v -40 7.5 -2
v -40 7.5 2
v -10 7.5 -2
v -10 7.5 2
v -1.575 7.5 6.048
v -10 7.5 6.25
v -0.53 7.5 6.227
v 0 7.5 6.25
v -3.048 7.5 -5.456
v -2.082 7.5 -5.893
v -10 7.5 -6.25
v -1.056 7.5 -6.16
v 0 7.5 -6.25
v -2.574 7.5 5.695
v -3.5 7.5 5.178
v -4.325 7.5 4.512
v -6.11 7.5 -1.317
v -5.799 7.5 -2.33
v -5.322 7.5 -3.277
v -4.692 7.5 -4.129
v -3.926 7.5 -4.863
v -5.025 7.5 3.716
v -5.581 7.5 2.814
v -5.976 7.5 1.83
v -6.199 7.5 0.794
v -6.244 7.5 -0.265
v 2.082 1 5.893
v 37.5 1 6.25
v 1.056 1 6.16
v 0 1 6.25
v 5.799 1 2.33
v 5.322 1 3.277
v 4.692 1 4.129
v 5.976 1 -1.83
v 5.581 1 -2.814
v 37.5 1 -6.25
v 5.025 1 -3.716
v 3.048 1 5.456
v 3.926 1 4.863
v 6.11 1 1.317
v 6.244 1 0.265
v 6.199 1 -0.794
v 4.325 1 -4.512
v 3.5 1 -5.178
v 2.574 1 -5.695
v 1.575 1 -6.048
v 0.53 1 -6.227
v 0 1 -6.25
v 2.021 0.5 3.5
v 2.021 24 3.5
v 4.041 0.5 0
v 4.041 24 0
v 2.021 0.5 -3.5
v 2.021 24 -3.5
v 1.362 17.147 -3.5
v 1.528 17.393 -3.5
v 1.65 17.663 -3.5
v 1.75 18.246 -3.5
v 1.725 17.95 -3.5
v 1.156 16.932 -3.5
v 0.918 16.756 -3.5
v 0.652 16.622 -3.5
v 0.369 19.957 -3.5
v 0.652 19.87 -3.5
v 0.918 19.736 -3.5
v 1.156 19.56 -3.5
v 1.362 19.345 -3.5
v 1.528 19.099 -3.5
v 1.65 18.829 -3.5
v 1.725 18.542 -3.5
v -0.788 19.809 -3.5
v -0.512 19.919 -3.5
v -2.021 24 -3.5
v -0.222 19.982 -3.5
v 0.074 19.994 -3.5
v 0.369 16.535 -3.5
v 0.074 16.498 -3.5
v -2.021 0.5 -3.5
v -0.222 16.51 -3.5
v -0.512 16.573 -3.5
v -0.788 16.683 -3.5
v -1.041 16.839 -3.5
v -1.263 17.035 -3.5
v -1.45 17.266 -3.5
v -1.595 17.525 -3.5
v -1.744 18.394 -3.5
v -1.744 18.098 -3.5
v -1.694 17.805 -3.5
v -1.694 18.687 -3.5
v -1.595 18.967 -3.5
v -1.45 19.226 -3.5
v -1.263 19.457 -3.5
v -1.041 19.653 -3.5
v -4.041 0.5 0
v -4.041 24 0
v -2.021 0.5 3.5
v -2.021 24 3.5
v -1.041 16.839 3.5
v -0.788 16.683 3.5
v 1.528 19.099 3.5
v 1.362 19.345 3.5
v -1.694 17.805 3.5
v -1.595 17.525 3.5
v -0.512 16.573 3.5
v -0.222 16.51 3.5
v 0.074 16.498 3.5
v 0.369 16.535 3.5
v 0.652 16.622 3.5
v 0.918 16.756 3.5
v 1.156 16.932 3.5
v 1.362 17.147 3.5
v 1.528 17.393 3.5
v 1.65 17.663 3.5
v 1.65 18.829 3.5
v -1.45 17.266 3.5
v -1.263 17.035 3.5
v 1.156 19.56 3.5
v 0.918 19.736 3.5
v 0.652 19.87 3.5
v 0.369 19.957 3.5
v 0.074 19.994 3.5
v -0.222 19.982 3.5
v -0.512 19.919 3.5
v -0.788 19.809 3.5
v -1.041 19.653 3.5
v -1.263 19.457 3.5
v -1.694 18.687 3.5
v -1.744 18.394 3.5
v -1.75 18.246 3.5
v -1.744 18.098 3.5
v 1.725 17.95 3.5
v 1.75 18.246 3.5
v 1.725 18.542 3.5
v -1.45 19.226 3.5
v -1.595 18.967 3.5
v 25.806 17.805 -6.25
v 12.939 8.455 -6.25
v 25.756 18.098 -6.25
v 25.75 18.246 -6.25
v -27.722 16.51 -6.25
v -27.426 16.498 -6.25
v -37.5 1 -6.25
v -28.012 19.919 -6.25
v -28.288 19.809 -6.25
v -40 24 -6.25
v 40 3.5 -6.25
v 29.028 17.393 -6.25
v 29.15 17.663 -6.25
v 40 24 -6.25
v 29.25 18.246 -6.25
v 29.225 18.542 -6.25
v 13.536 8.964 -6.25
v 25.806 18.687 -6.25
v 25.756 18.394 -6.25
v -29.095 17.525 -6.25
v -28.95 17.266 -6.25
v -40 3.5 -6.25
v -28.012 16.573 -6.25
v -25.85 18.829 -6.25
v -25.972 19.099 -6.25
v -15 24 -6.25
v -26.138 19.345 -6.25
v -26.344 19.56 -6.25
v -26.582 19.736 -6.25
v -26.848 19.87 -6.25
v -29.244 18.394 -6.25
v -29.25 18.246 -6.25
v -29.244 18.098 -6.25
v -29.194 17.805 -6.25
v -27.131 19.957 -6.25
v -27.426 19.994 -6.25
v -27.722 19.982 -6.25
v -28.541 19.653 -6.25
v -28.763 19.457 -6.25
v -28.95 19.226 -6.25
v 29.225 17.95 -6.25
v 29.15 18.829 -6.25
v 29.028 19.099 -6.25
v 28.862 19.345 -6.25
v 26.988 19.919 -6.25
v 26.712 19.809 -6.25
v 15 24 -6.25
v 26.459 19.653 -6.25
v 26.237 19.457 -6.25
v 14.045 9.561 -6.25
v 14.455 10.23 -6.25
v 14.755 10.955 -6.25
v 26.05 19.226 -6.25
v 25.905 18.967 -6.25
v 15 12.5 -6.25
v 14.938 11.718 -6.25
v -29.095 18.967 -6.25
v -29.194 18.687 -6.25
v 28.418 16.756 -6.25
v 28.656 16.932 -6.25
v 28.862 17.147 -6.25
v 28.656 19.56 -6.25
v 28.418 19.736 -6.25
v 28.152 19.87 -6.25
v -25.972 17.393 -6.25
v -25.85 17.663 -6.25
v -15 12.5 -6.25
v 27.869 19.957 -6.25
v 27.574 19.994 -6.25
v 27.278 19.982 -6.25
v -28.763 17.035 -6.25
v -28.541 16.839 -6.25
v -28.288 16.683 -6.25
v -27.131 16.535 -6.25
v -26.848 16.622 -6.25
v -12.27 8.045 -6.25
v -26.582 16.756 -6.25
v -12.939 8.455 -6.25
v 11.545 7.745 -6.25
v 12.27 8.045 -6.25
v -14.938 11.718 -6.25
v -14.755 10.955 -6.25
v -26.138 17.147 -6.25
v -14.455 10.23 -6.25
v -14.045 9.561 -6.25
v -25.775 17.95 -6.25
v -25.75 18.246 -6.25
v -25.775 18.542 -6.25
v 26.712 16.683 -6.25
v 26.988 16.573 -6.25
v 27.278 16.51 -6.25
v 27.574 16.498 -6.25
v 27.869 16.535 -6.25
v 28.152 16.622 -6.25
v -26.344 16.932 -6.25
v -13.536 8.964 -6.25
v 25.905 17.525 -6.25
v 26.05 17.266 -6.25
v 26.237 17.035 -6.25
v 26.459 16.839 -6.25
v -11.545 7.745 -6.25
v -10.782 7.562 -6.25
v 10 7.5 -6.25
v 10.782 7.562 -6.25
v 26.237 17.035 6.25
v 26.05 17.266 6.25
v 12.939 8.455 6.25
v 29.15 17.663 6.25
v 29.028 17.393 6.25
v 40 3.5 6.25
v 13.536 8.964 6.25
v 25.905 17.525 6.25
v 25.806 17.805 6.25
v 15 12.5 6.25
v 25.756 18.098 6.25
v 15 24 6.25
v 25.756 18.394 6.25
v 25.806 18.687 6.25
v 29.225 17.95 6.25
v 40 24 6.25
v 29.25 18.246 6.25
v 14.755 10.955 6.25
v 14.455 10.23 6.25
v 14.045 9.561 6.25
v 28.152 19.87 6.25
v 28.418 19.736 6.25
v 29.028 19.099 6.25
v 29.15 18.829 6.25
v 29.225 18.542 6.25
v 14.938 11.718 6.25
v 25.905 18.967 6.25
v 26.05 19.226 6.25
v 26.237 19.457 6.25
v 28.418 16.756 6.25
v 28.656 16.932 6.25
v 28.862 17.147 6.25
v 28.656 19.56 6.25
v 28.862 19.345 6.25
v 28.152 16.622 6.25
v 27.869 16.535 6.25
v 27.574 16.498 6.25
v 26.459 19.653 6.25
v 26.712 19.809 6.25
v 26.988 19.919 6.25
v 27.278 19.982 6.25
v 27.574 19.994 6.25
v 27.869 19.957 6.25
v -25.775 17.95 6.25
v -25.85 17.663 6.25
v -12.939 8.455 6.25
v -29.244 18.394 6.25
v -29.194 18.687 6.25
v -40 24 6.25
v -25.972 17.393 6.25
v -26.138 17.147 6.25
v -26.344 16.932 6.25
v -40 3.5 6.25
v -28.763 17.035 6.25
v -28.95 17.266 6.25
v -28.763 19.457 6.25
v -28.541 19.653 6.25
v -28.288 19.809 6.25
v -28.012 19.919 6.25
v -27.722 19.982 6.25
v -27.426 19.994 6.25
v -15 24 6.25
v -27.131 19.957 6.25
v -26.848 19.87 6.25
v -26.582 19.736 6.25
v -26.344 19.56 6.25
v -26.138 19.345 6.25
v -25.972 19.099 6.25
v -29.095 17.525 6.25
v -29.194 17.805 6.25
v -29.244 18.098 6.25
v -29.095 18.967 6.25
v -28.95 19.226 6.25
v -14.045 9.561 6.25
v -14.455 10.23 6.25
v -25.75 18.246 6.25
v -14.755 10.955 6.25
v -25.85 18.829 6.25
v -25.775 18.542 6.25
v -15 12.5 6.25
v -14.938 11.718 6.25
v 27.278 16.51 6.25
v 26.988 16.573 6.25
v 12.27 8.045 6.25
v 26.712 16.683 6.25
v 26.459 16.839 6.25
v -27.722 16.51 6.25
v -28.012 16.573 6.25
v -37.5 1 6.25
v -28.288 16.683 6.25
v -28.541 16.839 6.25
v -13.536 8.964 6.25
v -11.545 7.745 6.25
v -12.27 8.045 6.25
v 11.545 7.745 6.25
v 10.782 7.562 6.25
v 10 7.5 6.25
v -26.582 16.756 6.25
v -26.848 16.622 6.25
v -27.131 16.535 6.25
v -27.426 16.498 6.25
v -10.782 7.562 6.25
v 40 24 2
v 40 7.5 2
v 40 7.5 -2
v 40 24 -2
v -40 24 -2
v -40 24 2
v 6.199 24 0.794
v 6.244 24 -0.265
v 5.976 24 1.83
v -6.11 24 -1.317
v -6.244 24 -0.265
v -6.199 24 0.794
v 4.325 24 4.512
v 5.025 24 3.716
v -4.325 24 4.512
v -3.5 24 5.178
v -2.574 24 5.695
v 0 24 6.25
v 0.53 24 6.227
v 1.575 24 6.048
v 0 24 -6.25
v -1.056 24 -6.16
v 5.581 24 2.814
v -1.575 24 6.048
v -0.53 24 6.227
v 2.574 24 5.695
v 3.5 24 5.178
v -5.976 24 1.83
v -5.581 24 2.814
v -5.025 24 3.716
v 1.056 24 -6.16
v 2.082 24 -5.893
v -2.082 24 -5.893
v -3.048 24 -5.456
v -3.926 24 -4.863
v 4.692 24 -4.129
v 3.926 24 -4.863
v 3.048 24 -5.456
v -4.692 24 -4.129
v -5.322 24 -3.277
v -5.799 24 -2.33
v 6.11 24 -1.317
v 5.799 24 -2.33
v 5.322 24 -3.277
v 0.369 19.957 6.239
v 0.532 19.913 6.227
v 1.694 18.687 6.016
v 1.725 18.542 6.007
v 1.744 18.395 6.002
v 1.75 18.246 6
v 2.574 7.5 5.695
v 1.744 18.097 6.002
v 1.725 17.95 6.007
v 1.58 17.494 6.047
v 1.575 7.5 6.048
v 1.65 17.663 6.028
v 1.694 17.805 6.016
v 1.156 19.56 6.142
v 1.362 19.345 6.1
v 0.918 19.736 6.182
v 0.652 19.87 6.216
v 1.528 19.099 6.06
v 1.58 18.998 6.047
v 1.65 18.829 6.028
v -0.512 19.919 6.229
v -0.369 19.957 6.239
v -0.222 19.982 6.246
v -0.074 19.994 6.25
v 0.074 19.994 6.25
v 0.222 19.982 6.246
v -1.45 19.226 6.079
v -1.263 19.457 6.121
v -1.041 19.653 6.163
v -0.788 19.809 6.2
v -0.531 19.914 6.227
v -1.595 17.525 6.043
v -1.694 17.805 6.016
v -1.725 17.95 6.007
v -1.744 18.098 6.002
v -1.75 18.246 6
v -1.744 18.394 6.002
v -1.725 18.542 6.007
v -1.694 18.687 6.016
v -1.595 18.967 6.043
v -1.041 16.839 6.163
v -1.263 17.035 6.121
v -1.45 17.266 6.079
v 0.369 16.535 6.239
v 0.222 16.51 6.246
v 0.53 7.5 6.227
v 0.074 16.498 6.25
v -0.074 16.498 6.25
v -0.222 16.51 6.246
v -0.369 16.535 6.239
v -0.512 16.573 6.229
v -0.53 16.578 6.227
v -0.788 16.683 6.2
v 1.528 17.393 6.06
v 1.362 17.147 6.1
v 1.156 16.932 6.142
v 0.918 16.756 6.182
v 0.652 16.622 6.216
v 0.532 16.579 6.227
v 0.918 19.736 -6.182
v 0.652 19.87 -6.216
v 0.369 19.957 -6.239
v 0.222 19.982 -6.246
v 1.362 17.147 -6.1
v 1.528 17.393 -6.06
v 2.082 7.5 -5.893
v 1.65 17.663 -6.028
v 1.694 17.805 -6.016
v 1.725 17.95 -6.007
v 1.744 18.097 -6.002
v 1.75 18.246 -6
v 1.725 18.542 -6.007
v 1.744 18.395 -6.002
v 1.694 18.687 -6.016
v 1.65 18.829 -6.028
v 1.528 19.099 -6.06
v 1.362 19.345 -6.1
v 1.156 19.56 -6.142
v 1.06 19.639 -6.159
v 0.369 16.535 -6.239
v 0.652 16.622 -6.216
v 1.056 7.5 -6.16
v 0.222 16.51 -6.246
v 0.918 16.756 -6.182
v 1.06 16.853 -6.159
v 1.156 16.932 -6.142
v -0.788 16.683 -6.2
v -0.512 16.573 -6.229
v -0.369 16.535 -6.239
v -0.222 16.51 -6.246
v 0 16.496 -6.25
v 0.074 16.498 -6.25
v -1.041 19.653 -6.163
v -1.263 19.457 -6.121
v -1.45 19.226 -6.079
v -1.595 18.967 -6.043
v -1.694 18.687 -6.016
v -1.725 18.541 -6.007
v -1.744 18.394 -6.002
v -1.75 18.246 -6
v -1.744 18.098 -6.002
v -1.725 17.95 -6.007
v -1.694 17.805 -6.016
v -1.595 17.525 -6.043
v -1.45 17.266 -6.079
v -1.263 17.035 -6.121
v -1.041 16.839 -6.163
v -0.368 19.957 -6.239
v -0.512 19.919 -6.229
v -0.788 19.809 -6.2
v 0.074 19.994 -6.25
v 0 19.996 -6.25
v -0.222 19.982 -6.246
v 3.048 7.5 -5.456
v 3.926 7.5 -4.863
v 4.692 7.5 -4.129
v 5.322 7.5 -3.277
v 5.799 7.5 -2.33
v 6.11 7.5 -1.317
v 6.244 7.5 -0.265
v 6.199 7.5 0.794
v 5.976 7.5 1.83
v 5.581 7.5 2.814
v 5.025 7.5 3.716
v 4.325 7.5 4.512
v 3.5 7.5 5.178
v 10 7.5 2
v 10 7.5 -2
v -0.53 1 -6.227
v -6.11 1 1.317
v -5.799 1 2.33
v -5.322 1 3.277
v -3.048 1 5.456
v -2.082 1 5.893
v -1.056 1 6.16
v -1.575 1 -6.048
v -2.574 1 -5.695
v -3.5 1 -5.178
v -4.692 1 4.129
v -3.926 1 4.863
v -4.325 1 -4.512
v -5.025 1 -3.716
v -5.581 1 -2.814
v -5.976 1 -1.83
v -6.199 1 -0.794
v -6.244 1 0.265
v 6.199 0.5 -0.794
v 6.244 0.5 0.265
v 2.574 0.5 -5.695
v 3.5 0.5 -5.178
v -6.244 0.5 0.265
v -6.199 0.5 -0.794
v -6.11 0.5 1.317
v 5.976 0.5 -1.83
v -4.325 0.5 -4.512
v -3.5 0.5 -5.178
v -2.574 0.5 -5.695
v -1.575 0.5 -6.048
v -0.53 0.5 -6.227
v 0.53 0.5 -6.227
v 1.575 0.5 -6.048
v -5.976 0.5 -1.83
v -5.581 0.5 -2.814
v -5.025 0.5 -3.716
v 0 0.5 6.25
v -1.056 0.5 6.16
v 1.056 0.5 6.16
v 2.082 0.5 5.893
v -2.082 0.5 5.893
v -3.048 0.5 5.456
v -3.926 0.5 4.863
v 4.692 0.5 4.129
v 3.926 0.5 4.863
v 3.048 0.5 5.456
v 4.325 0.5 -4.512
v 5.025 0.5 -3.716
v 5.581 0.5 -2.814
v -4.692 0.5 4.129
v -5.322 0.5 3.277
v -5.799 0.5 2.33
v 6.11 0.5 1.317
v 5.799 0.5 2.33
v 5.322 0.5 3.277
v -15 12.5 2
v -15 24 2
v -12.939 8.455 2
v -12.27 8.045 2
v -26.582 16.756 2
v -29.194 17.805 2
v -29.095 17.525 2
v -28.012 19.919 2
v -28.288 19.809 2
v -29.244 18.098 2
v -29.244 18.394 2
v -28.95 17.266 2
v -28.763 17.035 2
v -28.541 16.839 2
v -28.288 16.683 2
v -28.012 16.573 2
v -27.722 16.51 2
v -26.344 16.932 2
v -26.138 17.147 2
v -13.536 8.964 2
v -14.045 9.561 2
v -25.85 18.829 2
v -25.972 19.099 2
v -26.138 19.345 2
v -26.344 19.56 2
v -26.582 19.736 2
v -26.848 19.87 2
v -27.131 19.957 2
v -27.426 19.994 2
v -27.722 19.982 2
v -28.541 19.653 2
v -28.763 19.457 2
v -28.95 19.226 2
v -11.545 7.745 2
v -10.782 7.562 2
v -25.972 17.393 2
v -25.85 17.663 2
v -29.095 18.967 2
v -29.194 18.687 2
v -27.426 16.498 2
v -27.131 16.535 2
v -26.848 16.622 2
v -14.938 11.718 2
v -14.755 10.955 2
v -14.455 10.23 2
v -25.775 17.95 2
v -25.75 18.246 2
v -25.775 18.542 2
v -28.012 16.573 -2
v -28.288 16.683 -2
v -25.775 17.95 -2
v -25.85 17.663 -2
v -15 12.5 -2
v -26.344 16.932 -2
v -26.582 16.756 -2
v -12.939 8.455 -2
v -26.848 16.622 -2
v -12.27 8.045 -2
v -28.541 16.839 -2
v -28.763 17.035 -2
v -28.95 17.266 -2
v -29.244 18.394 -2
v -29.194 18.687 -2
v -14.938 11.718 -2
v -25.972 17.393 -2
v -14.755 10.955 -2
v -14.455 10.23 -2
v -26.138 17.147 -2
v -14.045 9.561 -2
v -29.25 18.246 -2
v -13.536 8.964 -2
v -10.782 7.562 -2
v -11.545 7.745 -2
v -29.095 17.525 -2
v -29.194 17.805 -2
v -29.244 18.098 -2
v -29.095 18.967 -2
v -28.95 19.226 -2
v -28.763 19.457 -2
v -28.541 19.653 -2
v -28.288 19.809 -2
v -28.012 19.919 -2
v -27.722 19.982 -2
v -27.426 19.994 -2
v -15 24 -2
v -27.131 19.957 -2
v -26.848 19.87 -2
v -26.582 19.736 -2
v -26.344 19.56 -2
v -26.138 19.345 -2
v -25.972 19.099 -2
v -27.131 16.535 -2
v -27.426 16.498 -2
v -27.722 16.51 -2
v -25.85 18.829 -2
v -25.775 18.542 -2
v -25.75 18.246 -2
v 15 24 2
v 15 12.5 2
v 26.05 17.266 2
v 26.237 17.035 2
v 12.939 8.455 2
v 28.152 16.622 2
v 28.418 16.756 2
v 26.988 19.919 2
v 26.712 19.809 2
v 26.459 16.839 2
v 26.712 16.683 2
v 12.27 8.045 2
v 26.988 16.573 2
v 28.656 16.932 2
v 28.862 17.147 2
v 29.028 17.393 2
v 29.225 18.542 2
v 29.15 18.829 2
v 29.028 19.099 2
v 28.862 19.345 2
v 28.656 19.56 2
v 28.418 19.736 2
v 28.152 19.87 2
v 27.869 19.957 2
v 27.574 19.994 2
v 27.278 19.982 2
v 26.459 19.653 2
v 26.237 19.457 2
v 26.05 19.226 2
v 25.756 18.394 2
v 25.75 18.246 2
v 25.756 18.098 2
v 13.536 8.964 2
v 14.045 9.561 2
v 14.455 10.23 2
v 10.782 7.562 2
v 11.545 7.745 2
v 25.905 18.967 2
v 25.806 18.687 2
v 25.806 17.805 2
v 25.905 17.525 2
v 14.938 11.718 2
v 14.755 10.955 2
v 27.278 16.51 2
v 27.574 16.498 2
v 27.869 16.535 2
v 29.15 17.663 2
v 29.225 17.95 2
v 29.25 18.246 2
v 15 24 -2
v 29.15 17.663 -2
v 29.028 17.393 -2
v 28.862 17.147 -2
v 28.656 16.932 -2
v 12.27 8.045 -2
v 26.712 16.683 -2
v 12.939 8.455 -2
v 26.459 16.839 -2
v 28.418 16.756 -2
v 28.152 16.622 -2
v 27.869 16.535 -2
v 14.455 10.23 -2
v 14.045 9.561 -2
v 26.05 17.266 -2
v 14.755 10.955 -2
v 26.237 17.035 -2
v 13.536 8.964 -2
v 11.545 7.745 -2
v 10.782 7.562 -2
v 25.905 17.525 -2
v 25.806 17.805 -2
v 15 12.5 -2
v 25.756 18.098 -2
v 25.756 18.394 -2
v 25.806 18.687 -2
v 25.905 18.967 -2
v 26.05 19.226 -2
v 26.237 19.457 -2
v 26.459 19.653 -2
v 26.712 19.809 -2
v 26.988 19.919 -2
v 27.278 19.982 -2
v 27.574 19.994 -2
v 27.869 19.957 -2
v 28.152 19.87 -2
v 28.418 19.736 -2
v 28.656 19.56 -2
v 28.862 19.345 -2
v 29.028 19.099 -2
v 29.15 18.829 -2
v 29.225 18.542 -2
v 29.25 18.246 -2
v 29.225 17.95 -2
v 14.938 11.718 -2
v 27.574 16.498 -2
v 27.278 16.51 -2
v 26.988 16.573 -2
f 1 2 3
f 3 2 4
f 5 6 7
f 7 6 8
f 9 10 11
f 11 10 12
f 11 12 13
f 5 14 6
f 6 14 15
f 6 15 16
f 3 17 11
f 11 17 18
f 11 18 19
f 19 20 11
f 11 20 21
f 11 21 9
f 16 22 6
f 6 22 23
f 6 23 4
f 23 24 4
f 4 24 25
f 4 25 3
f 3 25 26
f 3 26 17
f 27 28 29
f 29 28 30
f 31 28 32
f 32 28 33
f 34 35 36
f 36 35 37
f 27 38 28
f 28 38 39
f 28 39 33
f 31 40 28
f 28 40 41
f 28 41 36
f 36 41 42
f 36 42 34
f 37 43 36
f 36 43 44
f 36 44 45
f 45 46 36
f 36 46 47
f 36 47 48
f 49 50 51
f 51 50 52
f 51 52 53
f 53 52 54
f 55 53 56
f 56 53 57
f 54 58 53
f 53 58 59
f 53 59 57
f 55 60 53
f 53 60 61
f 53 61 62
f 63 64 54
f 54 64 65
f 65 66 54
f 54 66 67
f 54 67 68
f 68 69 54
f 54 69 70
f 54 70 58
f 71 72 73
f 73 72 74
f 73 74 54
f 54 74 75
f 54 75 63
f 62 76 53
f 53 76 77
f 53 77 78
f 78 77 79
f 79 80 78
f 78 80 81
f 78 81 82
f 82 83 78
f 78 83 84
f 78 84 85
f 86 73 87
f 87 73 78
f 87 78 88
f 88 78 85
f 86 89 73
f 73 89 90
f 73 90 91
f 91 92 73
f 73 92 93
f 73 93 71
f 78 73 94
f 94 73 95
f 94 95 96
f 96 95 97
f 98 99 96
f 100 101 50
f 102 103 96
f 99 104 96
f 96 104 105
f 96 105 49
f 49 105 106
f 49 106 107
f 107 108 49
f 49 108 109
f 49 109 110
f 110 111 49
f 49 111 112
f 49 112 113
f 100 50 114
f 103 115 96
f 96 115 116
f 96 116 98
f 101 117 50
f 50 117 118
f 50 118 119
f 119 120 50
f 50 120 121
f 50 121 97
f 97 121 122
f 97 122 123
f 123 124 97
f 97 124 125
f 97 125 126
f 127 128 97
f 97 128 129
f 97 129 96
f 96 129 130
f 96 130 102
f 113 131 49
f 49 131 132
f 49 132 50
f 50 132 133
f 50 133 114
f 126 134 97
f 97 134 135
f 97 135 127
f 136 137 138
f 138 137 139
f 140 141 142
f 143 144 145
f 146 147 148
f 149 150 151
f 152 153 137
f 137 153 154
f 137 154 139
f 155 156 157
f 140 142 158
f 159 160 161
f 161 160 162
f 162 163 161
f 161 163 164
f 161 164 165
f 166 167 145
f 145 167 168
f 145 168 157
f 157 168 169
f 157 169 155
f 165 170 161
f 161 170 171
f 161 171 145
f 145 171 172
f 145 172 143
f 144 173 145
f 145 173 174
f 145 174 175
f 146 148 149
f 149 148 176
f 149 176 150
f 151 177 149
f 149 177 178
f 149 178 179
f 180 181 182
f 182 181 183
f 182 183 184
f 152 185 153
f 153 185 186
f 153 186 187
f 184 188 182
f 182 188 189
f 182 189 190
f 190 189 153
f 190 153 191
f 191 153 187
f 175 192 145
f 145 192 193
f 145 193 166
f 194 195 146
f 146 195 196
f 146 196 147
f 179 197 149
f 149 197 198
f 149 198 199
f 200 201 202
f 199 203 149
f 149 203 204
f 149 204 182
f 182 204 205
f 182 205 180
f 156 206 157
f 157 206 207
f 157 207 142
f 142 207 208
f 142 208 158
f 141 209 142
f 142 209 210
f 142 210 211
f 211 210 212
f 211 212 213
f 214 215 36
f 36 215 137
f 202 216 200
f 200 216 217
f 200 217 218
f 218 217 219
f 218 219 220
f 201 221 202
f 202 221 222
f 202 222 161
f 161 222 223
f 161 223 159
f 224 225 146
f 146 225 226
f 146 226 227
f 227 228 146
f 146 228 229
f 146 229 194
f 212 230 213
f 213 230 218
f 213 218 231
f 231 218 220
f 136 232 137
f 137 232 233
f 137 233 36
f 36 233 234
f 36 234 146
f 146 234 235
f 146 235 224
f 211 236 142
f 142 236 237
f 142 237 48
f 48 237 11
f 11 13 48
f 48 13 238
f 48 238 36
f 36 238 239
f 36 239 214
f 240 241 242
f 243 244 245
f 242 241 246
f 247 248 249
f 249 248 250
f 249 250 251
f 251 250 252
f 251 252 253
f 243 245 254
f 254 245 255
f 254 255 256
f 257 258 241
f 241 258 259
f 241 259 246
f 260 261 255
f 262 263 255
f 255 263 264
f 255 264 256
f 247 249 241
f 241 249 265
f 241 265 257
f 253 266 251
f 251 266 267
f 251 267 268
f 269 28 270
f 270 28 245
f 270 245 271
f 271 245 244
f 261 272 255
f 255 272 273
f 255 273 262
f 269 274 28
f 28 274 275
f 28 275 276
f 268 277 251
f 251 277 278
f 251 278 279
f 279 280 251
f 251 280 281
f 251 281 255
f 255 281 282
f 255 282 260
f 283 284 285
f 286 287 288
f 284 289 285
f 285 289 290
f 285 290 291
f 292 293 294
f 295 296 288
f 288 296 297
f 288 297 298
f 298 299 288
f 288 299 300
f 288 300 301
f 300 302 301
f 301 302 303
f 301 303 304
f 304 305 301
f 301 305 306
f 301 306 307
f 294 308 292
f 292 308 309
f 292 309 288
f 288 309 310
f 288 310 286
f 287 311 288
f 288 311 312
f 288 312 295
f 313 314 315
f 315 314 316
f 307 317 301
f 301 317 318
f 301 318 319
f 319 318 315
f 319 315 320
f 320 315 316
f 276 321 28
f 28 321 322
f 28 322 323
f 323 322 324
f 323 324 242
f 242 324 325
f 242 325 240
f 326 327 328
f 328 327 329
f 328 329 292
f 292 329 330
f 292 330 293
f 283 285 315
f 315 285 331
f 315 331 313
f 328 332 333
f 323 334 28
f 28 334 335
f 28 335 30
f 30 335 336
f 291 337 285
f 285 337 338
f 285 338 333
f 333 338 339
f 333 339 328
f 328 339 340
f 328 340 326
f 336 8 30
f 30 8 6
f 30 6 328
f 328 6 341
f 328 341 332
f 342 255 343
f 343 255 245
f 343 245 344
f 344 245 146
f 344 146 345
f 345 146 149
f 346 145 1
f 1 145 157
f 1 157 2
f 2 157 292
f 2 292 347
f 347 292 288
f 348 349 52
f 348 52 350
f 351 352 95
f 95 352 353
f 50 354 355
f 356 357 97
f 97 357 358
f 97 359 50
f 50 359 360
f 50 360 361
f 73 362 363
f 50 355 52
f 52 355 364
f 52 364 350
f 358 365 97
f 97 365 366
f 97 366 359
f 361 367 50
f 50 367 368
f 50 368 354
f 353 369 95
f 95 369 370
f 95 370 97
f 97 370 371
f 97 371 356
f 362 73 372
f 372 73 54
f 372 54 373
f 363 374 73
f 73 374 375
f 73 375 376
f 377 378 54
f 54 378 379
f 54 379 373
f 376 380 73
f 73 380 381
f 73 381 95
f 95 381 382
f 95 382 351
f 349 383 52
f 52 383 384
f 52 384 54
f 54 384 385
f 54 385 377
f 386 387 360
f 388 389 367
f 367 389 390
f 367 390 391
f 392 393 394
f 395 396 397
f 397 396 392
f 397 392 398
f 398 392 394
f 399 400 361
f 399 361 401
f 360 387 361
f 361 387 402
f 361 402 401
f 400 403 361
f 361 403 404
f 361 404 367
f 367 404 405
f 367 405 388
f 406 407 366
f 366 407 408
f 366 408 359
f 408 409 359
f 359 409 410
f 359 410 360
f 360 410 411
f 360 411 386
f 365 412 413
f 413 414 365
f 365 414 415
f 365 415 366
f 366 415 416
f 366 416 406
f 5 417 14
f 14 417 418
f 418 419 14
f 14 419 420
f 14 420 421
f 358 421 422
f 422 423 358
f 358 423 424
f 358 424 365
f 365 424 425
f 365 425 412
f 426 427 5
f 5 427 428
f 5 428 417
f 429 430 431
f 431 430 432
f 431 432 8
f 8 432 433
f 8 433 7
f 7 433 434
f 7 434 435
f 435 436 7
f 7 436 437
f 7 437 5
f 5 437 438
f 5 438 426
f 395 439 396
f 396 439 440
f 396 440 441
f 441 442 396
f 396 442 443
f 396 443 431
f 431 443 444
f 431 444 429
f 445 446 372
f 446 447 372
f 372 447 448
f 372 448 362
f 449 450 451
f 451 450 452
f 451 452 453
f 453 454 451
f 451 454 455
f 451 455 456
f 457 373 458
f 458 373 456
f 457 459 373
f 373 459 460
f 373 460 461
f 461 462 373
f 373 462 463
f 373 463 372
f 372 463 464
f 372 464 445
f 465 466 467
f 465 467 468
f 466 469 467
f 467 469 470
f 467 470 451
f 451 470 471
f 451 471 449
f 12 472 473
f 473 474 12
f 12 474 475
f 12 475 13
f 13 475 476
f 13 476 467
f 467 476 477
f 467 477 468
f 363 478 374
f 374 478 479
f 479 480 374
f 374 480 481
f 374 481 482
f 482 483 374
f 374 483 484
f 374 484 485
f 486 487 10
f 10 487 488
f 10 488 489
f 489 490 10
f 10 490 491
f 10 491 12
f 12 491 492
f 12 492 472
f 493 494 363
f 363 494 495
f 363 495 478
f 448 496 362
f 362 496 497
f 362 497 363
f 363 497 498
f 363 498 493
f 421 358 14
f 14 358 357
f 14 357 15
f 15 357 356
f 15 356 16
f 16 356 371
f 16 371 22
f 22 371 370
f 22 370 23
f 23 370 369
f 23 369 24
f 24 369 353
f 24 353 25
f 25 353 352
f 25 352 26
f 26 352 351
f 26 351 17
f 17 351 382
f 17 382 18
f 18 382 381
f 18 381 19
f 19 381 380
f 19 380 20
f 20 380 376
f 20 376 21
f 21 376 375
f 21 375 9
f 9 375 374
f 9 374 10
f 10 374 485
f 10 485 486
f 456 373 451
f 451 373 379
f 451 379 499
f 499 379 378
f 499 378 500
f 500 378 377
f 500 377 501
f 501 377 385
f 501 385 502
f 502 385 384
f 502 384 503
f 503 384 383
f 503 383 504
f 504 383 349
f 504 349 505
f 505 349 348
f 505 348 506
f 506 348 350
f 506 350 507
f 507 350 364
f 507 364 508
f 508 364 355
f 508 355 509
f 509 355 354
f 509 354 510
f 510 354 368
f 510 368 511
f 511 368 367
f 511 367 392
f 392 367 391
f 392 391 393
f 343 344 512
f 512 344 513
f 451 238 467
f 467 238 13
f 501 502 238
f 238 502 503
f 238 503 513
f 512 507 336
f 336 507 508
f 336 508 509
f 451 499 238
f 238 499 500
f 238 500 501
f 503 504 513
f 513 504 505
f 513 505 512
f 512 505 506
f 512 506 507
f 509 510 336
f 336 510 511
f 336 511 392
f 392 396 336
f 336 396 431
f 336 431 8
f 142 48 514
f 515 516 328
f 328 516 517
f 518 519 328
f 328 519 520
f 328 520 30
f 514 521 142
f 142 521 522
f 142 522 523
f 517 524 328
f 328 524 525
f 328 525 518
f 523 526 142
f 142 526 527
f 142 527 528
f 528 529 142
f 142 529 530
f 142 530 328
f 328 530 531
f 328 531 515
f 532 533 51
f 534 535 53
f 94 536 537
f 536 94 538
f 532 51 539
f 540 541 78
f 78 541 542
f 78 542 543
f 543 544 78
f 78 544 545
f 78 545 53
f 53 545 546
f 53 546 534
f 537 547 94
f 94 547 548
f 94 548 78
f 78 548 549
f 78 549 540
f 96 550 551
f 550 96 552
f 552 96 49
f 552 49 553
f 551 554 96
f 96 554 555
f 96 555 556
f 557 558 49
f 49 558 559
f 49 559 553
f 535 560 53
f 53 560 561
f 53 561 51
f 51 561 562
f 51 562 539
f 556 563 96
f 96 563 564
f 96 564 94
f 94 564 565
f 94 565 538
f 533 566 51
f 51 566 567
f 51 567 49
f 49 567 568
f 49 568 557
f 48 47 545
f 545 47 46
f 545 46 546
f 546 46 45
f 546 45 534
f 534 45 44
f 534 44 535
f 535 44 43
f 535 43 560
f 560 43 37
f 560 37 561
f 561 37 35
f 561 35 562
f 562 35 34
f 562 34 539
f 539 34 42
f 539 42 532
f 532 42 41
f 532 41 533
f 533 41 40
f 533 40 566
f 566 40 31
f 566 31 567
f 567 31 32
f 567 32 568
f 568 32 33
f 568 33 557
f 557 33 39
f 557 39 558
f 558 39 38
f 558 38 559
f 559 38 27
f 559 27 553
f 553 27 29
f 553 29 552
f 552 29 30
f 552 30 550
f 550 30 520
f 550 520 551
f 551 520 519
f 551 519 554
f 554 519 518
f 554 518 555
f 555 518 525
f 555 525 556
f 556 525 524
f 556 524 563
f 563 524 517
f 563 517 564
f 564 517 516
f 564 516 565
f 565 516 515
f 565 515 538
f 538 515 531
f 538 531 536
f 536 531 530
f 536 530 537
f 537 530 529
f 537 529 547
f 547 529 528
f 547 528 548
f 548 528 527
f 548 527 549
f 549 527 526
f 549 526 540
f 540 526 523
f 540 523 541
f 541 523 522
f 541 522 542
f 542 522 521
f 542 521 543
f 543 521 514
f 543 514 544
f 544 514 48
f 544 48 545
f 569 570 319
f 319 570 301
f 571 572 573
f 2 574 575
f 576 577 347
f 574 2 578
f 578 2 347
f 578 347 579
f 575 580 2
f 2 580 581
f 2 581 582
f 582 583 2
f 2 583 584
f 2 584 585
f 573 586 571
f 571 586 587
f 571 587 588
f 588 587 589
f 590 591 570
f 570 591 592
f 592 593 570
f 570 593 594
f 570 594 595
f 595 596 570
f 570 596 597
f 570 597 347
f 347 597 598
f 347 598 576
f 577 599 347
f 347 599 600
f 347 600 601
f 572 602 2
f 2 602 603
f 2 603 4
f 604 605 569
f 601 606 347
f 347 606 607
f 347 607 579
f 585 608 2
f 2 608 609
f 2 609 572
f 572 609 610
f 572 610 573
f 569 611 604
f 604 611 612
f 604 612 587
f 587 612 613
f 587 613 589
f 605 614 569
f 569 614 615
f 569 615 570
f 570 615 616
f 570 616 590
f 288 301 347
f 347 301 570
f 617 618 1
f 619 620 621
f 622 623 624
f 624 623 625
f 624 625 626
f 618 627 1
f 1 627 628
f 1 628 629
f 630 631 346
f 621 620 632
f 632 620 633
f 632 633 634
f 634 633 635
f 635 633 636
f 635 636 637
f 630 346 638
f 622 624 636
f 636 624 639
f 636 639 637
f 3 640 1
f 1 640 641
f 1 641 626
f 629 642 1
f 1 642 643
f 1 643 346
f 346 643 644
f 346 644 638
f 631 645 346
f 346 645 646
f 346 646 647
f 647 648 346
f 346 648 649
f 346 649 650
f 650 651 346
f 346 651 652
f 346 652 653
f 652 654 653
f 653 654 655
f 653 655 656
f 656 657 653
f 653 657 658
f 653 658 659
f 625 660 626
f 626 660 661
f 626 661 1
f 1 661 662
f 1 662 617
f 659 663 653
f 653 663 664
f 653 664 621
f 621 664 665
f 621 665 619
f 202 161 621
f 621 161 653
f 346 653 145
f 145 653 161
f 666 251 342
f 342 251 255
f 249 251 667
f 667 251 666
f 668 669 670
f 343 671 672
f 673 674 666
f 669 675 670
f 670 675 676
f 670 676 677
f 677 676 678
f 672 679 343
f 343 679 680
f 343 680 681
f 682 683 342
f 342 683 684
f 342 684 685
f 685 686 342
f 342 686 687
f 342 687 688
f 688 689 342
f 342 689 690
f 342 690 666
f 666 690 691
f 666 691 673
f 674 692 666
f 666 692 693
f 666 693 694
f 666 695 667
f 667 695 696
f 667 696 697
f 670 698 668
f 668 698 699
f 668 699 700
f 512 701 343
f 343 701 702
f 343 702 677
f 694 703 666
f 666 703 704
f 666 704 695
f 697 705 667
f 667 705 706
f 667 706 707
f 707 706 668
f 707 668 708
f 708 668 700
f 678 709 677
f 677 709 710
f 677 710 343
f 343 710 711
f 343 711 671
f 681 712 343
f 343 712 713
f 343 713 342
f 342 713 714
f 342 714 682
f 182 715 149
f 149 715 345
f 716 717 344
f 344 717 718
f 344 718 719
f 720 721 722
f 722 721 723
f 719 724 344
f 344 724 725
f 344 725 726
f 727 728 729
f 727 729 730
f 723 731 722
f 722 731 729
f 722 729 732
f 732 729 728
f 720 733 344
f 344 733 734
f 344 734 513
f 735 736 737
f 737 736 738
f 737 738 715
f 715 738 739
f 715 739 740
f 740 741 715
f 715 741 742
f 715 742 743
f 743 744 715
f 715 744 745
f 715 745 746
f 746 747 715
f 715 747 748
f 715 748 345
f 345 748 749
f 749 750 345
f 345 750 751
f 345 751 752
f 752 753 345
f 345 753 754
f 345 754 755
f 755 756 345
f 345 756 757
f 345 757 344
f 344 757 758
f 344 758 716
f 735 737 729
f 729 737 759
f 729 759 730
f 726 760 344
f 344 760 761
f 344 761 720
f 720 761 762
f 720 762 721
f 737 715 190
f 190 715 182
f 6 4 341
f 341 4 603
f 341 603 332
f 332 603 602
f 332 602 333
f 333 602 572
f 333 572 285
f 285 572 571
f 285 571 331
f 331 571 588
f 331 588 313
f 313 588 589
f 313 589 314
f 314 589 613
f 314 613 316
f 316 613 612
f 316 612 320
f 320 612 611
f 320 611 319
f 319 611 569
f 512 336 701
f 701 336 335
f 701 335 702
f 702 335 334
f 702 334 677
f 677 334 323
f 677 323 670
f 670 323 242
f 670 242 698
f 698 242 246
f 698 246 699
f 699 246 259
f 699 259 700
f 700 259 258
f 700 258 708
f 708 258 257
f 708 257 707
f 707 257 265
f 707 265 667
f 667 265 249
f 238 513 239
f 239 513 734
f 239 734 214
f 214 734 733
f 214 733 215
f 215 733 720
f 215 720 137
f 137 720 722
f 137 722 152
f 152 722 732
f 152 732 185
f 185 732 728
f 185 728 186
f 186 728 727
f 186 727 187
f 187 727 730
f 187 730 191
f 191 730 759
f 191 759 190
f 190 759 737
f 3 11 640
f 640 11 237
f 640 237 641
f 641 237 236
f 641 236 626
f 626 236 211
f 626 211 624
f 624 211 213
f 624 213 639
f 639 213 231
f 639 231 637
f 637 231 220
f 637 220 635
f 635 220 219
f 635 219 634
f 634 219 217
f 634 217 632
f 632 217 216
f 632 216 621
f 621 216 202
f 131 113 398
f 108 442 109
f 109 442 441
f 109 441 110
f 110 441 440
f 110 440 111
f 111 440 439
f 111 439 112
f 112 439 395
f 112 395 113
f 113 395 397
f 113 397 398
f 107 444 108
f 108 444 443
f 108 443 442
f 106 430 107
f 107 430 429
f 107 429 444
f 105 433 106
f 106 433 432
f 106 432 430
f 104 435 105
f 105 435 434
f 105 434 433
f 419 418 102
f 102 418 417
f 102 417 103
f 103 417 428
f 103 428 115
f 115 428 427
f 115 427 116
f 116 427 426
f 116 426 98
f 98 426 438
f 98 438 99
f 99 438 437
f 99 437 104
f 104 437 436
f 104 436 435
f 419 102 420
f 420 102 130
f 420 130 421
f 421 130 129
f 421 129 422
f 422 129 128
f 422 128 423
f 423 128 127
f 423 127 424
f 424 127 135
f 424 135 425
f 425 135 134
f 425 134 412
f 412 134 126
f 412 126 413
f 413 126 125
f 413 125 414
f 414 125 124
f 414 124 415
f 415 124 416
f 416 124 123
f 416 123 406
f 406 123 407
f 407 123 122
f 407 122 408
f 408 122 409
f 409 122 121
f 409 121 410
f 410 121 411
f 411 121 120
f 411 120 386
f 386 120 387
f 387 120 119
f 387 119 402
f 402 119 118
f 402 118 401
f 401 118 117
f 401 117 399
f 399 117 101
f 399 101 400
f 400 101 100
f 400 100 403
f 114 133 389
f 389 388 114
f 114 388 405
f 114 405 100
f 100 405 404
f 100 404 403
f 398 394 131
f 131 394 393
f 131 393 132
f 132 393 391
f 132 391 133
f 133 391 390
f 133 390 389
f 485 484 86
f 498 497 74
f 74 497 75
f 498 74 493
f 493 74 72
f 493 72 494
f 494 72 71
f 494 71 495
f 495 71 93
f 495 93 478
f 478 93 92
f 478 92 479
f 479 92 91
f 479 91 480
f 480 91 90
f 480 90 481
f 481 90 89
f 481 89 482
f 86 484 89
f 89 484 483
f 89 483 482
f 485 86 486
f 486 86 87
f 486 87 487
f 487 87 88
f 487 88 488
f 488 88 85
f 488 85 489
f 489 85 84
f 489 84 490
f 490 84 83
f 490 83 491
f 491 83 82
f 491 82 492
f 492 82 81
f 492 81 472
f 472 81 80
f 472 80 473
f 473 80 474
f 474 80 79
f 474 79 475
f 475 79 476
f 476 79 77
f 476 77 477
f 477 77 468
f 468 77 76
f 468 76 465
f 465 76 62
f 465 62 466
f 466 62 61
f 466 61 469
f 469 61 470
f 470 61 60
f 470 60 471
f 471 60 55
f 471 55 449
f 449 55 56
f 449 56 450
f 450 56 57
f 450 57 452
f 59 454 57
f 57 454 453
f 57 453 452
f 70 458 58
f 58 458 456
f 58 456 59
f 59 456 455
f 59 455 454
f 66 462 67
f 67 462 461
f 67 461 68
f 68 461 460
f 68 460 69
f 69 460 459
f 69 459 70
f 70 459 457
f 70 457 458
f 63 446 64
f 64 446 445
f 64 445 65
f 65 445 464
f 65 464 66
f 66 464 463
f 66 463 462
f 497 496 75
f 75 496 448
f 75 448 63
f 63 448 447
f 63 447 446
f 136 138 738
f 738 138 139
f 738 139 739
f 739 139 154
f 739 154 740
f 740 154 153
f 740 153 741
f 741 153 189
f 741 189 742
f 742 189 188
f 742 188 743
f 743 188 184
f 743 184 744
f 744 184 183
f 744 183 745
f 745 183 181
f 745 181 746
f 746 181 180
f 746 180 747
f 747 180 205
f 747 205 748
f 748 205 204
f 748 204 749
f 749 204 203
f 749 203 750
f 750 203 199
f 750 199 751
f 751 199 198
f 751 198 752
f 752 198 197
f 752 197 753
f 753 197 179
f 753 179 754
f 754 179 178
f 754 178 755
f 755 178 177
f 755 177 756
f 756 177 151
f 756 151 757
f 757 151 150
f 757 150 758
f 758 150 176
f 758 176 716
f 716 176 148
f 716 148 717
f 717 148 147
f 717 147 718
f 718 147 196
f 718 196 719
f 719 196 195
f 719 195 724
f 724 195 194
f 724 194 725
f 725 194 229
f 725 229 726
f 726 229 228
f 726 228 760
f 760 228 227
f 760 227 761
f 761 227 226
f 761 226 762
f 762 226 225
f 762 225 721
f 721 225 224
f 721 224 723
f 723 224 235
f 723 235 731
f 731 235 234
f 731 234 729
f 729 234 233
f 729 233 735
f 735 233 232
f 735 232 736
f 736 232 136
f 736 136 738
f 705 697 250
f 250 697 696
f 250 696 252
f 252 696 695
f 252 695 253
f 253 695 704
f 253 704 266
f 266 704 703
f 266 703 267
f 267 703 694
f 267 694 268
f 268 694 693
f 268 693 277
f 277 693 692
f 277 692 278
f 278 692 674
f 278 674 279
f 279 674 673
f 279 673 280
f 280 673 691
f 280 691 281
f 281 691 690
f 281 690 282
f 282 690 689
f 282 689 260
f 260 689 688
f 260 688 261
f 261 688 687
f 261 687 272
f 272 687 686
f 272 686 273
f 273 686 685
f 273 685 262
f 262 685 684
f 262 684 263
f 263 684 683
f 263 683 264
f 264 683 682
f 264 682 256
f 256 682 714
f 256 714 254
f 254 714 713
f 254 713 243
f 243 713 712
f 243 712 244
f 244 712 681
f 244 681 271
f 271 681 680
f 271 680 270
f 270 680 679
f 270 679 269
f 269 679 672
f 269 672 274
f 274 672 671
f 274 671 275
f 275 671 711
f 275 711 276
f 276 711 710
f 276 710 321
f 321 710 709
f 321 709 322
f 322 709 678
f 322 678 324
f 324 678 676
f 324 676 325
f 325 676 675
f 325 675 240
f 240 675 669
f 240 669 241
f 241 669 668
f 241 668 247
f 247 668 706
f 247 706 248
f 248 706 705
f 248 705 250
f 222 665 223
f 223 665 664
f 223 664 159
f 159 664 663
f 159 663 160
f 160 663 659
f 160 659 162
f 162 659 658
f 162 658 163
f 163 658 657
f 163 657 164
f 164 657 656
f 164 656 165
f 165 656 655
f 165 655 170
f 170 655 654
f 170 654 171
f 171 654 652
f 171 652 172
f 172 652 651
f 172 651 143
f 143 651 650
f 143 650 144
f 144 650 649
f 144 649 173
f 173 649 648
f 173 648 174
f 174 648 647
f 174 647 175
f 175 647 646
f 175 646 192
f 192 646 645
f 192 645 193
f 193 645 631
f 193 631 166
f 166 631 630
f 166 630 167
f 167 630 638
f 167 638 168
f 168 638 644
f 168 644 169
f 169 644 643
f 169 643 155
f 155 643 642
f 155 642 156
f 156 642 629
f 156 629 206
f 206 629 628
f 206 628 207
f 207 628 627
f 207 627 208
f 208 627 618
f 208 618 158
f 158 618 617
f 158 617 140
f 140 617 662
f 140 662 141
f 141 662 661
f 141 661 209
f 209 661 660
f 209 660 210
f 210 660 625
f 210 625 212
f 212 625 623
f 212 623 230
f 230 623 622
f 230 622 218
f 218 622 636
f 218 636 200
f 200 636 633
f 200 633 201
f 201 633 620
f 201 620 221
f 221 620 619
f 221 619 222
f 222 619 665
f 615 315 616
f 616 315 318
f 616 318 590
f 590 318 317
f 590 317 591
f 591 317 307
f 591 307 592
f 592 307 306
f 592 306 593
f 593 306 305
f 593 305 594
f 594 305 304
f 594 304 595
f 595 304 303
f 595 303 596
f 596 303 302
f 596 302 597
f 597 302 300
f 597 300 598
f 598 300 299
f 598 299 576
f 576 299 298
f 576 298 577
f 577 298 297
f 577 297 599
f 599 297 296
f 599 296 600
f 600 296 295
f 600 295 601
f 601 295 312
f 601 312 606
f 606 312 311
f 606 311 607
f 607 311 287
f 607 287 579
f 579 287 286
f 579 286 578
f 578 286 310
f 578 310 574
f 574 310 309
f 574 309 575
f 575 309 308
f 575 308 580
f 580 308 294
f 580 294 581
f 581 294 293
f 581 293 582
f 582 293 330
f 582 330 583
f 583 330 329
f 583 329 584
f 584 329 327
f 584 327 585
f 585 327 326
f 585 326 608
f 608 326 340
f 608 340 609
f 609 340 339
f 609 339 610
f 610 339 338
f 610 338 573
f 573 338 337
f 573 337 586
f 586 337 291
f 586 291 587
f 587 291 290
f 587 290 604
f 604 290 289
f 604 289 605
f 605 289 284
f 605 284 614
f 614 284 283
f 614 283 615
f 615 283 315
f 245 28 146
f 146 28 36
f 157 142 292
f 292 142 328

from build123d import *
from build123d.topology import SkipClean

# Parameters (mm, degrees)
SKETCH1_R           = 6.25
BOSS_EXTRUDE1_DEPTH = 24
SKETCH2_R           = 1.75
CUT_EXTRUDE2_DEPTH  = 7.5
SKETCH3_W           = 80
SKETCH3_H           = 12.5
BOSS_EXTRUDE2_DEPTH = 7.5
CUT_EXTRUDE3_DEPTH  = 44.718560184
SKETCH5_W           = 80
SKETCH5_H           = 12.5
CUT_EXTRUDE4_DEPTH  = 1
BOSS_EXTRUDE3_START = -23.5
SKETCH6_R           = 6.25
BOSS_EXTRUDE3_DEPTH = 23.5
SKETCH7_W           = 25
SKETCH7_H           = 4.25
BOSS_EXTRUDE4_DEPTH = 16.5
FILLET1_R           = 5
SKETCH8_R           = 1.75
CUT_EXTRUDE5_DEPTH  = 7.5
LPATTERN1_COUNT     = 2
LPATTERN1_PITCH     = 27.5
LPATTERN1_COL_COUNT = 2
LPATTERN1_COL_PITCH = 27.5
CHAMFER1_SIZE       = 2.5


with BuildPart() as part:
    # Sketch1 → Boss-Extrude1 (new body)
    with BuildSketch(Plane(origin=(0, 0, 0), x_dir=(1, 0, 0), z_dir=(0, 1, 0))):
        with Locations(Location((0, 0, 0), (0, 0, 270))):
            Circle(SKETCH1_R)
        Polygon((4.041451884, 0), (2.020725942, 3.5), (-2.020725942, 3.5), (-4.041451884, 0), (-2.020725942, -3.5), (2.020725942, -3.5), align=None, mode=Mode.SUBTRACT)
    extrude(amount=BOSS_EXTRUDE1_DEPTH)

    # Sketch2 → Cut-Extrude2 (cut, symmetric)
    with BuildSketch(Plane.XY):
        with Locations((0, 17.746)):
            Circle(SKETCH2_R)
    extrude(amount=CUT_EXTRUDE2_DEPTH, both=True, mode=Mode.SUBTRACT)

    # Sketch3 → Boss-Extrude2 (add)
    with BuildSketch(Plane.XZ):
        Rectangle(SKETCH3_W, SKETCH3_H)
    extrude(amount=-BOSS_EXTRUDE2_DEPTH)

    # Sketch4 → Cut-Extrude3 (cut, through all)
    with BuildSketch(Plane(origin=(0, 7.5, 0), x_dir=(1, 0, 0), z_dir=(0, 1, 0))):
        Polygon((-2.020725942, -3.5), (2.020725942, -3.5), (4.041451884, 0), (2.020725942, 3.5), (-2.020725942, 3.5), (-4.041451884, 0), align=None)
    extrude(amount=-CUT_EXTRUDE3_DEPTH, mode=Mode.SUBTRACT)

    # Sketch5 → Cut-Extrude4 (cut)
    with BuildSketch(Plane.XZ):
        Rectangle(SKETCH5_W, SKETCH5_H)
    extrude(amount=-CUT_EXTRUDE4_DEPTH, mode=Mode.SUBTRACT)

    # Sketch6 → Boss-Extrude3 (add)
    with SkipClean():  # the faces are left unmerged after this step: merging them gives an invalid solid
        with BuildSketch(Plane(origin=(0, 24, 0), x_dir=(1, 0, 0), z_dir=(0, 1, 0)).offset(BOSS_EXTRUDE3_START)):
            with Locations(Location((0, 0, 0), (0, 0, 270))):
                Circle(SKETCH6_R)
            Polygon((-2.020725942, 3.5), (-4.041451884, 0), (-2.020725942, -3.5), (2.020725942, -3.5), (4.041451884, 0), (2.020725942, 3.5), align=None, mode=Mode.SUBTRACT)
        extrude(amount=BOSS_EXTRUDE3_DEPTH)
    add(part.part.scale(1), mode=Mode.REPLACE)  # the faces are merged on a copy

    # Sketch7 → Boss-Extrude4 (add)
    with BuildSketch(Plane(origin=(0, 7.5, 0), x_dir=(1, 0, 0), z_dir=(0, 1, 0))):
        with Locations((-27.5, 4.125)):
            Rectangle(SKETCH7_W, SKETCH7_H)
        with Locations((-27.5, -4.125)):
            Rectangle(SKETCH7_W, SKETCH7_H)
    boss_extrude4 = extrude(amount=BOSS_EXTRUDE4_DEPTH)

    # Mirror1: Boss-Extrude4 across plane
    add(boss_extrude4.mirror(Plane(origin=(0, 0, 0), x_dir=(0, 0, 1), z_dir=(1, 0, 0))))

    # Fillet1
    fillet1_edges = [part.edges().sort_by_distance(p)[0] for p in [
        (-15, 7.5, -4.125),
        (-15, 7.5, 4.125),
        (15, 7.5, -4.125),
        (15, 7.5, 4.125),
    ]]
    fillet(fillet1_edges, radius=FILLET1_R)

    # Sketch8 → Cut-Extrude5 (cut, symmetric)
    with BuildSketch(Plane.XY):
        with Locations((0, 18.246)):
            Circle(SKETCH8_R)
    cut_extrude5 = extrude(amount=CUT_EXTRUDE5_DEPTH, both=True, mode=Mode.SUBTRACT)

    # LPattern1: Cut-Extrude5 ×2
    with Locations(*[(i * LPATTERN1_PITCH, 0, 0) for i in range(1, LPATTERN1_COUNT)]):
        add(cut_extrude5, mode=Mode.SUBTRACT)

    # LPattern1 col: Cut-Extrude5 ×2
    with Locations(*[(-i * LPATTERN1_COL_PITCH, 0, 0) for i in range(1, LPATTERN1_COL_COUNT)]):
        add(cut_extrude5, mode=Mode.SUBTRACT)

    # Chamfer1
    chamfer1_edges = [part.edges().sort_by_distance(p)[0] for p in [
        (40, 1, 0),
        (-40, 1, 0),
    ]]
    chamfer(chamfer1_edges, length=CHAMFER1_SIZE)


solid = part.part
